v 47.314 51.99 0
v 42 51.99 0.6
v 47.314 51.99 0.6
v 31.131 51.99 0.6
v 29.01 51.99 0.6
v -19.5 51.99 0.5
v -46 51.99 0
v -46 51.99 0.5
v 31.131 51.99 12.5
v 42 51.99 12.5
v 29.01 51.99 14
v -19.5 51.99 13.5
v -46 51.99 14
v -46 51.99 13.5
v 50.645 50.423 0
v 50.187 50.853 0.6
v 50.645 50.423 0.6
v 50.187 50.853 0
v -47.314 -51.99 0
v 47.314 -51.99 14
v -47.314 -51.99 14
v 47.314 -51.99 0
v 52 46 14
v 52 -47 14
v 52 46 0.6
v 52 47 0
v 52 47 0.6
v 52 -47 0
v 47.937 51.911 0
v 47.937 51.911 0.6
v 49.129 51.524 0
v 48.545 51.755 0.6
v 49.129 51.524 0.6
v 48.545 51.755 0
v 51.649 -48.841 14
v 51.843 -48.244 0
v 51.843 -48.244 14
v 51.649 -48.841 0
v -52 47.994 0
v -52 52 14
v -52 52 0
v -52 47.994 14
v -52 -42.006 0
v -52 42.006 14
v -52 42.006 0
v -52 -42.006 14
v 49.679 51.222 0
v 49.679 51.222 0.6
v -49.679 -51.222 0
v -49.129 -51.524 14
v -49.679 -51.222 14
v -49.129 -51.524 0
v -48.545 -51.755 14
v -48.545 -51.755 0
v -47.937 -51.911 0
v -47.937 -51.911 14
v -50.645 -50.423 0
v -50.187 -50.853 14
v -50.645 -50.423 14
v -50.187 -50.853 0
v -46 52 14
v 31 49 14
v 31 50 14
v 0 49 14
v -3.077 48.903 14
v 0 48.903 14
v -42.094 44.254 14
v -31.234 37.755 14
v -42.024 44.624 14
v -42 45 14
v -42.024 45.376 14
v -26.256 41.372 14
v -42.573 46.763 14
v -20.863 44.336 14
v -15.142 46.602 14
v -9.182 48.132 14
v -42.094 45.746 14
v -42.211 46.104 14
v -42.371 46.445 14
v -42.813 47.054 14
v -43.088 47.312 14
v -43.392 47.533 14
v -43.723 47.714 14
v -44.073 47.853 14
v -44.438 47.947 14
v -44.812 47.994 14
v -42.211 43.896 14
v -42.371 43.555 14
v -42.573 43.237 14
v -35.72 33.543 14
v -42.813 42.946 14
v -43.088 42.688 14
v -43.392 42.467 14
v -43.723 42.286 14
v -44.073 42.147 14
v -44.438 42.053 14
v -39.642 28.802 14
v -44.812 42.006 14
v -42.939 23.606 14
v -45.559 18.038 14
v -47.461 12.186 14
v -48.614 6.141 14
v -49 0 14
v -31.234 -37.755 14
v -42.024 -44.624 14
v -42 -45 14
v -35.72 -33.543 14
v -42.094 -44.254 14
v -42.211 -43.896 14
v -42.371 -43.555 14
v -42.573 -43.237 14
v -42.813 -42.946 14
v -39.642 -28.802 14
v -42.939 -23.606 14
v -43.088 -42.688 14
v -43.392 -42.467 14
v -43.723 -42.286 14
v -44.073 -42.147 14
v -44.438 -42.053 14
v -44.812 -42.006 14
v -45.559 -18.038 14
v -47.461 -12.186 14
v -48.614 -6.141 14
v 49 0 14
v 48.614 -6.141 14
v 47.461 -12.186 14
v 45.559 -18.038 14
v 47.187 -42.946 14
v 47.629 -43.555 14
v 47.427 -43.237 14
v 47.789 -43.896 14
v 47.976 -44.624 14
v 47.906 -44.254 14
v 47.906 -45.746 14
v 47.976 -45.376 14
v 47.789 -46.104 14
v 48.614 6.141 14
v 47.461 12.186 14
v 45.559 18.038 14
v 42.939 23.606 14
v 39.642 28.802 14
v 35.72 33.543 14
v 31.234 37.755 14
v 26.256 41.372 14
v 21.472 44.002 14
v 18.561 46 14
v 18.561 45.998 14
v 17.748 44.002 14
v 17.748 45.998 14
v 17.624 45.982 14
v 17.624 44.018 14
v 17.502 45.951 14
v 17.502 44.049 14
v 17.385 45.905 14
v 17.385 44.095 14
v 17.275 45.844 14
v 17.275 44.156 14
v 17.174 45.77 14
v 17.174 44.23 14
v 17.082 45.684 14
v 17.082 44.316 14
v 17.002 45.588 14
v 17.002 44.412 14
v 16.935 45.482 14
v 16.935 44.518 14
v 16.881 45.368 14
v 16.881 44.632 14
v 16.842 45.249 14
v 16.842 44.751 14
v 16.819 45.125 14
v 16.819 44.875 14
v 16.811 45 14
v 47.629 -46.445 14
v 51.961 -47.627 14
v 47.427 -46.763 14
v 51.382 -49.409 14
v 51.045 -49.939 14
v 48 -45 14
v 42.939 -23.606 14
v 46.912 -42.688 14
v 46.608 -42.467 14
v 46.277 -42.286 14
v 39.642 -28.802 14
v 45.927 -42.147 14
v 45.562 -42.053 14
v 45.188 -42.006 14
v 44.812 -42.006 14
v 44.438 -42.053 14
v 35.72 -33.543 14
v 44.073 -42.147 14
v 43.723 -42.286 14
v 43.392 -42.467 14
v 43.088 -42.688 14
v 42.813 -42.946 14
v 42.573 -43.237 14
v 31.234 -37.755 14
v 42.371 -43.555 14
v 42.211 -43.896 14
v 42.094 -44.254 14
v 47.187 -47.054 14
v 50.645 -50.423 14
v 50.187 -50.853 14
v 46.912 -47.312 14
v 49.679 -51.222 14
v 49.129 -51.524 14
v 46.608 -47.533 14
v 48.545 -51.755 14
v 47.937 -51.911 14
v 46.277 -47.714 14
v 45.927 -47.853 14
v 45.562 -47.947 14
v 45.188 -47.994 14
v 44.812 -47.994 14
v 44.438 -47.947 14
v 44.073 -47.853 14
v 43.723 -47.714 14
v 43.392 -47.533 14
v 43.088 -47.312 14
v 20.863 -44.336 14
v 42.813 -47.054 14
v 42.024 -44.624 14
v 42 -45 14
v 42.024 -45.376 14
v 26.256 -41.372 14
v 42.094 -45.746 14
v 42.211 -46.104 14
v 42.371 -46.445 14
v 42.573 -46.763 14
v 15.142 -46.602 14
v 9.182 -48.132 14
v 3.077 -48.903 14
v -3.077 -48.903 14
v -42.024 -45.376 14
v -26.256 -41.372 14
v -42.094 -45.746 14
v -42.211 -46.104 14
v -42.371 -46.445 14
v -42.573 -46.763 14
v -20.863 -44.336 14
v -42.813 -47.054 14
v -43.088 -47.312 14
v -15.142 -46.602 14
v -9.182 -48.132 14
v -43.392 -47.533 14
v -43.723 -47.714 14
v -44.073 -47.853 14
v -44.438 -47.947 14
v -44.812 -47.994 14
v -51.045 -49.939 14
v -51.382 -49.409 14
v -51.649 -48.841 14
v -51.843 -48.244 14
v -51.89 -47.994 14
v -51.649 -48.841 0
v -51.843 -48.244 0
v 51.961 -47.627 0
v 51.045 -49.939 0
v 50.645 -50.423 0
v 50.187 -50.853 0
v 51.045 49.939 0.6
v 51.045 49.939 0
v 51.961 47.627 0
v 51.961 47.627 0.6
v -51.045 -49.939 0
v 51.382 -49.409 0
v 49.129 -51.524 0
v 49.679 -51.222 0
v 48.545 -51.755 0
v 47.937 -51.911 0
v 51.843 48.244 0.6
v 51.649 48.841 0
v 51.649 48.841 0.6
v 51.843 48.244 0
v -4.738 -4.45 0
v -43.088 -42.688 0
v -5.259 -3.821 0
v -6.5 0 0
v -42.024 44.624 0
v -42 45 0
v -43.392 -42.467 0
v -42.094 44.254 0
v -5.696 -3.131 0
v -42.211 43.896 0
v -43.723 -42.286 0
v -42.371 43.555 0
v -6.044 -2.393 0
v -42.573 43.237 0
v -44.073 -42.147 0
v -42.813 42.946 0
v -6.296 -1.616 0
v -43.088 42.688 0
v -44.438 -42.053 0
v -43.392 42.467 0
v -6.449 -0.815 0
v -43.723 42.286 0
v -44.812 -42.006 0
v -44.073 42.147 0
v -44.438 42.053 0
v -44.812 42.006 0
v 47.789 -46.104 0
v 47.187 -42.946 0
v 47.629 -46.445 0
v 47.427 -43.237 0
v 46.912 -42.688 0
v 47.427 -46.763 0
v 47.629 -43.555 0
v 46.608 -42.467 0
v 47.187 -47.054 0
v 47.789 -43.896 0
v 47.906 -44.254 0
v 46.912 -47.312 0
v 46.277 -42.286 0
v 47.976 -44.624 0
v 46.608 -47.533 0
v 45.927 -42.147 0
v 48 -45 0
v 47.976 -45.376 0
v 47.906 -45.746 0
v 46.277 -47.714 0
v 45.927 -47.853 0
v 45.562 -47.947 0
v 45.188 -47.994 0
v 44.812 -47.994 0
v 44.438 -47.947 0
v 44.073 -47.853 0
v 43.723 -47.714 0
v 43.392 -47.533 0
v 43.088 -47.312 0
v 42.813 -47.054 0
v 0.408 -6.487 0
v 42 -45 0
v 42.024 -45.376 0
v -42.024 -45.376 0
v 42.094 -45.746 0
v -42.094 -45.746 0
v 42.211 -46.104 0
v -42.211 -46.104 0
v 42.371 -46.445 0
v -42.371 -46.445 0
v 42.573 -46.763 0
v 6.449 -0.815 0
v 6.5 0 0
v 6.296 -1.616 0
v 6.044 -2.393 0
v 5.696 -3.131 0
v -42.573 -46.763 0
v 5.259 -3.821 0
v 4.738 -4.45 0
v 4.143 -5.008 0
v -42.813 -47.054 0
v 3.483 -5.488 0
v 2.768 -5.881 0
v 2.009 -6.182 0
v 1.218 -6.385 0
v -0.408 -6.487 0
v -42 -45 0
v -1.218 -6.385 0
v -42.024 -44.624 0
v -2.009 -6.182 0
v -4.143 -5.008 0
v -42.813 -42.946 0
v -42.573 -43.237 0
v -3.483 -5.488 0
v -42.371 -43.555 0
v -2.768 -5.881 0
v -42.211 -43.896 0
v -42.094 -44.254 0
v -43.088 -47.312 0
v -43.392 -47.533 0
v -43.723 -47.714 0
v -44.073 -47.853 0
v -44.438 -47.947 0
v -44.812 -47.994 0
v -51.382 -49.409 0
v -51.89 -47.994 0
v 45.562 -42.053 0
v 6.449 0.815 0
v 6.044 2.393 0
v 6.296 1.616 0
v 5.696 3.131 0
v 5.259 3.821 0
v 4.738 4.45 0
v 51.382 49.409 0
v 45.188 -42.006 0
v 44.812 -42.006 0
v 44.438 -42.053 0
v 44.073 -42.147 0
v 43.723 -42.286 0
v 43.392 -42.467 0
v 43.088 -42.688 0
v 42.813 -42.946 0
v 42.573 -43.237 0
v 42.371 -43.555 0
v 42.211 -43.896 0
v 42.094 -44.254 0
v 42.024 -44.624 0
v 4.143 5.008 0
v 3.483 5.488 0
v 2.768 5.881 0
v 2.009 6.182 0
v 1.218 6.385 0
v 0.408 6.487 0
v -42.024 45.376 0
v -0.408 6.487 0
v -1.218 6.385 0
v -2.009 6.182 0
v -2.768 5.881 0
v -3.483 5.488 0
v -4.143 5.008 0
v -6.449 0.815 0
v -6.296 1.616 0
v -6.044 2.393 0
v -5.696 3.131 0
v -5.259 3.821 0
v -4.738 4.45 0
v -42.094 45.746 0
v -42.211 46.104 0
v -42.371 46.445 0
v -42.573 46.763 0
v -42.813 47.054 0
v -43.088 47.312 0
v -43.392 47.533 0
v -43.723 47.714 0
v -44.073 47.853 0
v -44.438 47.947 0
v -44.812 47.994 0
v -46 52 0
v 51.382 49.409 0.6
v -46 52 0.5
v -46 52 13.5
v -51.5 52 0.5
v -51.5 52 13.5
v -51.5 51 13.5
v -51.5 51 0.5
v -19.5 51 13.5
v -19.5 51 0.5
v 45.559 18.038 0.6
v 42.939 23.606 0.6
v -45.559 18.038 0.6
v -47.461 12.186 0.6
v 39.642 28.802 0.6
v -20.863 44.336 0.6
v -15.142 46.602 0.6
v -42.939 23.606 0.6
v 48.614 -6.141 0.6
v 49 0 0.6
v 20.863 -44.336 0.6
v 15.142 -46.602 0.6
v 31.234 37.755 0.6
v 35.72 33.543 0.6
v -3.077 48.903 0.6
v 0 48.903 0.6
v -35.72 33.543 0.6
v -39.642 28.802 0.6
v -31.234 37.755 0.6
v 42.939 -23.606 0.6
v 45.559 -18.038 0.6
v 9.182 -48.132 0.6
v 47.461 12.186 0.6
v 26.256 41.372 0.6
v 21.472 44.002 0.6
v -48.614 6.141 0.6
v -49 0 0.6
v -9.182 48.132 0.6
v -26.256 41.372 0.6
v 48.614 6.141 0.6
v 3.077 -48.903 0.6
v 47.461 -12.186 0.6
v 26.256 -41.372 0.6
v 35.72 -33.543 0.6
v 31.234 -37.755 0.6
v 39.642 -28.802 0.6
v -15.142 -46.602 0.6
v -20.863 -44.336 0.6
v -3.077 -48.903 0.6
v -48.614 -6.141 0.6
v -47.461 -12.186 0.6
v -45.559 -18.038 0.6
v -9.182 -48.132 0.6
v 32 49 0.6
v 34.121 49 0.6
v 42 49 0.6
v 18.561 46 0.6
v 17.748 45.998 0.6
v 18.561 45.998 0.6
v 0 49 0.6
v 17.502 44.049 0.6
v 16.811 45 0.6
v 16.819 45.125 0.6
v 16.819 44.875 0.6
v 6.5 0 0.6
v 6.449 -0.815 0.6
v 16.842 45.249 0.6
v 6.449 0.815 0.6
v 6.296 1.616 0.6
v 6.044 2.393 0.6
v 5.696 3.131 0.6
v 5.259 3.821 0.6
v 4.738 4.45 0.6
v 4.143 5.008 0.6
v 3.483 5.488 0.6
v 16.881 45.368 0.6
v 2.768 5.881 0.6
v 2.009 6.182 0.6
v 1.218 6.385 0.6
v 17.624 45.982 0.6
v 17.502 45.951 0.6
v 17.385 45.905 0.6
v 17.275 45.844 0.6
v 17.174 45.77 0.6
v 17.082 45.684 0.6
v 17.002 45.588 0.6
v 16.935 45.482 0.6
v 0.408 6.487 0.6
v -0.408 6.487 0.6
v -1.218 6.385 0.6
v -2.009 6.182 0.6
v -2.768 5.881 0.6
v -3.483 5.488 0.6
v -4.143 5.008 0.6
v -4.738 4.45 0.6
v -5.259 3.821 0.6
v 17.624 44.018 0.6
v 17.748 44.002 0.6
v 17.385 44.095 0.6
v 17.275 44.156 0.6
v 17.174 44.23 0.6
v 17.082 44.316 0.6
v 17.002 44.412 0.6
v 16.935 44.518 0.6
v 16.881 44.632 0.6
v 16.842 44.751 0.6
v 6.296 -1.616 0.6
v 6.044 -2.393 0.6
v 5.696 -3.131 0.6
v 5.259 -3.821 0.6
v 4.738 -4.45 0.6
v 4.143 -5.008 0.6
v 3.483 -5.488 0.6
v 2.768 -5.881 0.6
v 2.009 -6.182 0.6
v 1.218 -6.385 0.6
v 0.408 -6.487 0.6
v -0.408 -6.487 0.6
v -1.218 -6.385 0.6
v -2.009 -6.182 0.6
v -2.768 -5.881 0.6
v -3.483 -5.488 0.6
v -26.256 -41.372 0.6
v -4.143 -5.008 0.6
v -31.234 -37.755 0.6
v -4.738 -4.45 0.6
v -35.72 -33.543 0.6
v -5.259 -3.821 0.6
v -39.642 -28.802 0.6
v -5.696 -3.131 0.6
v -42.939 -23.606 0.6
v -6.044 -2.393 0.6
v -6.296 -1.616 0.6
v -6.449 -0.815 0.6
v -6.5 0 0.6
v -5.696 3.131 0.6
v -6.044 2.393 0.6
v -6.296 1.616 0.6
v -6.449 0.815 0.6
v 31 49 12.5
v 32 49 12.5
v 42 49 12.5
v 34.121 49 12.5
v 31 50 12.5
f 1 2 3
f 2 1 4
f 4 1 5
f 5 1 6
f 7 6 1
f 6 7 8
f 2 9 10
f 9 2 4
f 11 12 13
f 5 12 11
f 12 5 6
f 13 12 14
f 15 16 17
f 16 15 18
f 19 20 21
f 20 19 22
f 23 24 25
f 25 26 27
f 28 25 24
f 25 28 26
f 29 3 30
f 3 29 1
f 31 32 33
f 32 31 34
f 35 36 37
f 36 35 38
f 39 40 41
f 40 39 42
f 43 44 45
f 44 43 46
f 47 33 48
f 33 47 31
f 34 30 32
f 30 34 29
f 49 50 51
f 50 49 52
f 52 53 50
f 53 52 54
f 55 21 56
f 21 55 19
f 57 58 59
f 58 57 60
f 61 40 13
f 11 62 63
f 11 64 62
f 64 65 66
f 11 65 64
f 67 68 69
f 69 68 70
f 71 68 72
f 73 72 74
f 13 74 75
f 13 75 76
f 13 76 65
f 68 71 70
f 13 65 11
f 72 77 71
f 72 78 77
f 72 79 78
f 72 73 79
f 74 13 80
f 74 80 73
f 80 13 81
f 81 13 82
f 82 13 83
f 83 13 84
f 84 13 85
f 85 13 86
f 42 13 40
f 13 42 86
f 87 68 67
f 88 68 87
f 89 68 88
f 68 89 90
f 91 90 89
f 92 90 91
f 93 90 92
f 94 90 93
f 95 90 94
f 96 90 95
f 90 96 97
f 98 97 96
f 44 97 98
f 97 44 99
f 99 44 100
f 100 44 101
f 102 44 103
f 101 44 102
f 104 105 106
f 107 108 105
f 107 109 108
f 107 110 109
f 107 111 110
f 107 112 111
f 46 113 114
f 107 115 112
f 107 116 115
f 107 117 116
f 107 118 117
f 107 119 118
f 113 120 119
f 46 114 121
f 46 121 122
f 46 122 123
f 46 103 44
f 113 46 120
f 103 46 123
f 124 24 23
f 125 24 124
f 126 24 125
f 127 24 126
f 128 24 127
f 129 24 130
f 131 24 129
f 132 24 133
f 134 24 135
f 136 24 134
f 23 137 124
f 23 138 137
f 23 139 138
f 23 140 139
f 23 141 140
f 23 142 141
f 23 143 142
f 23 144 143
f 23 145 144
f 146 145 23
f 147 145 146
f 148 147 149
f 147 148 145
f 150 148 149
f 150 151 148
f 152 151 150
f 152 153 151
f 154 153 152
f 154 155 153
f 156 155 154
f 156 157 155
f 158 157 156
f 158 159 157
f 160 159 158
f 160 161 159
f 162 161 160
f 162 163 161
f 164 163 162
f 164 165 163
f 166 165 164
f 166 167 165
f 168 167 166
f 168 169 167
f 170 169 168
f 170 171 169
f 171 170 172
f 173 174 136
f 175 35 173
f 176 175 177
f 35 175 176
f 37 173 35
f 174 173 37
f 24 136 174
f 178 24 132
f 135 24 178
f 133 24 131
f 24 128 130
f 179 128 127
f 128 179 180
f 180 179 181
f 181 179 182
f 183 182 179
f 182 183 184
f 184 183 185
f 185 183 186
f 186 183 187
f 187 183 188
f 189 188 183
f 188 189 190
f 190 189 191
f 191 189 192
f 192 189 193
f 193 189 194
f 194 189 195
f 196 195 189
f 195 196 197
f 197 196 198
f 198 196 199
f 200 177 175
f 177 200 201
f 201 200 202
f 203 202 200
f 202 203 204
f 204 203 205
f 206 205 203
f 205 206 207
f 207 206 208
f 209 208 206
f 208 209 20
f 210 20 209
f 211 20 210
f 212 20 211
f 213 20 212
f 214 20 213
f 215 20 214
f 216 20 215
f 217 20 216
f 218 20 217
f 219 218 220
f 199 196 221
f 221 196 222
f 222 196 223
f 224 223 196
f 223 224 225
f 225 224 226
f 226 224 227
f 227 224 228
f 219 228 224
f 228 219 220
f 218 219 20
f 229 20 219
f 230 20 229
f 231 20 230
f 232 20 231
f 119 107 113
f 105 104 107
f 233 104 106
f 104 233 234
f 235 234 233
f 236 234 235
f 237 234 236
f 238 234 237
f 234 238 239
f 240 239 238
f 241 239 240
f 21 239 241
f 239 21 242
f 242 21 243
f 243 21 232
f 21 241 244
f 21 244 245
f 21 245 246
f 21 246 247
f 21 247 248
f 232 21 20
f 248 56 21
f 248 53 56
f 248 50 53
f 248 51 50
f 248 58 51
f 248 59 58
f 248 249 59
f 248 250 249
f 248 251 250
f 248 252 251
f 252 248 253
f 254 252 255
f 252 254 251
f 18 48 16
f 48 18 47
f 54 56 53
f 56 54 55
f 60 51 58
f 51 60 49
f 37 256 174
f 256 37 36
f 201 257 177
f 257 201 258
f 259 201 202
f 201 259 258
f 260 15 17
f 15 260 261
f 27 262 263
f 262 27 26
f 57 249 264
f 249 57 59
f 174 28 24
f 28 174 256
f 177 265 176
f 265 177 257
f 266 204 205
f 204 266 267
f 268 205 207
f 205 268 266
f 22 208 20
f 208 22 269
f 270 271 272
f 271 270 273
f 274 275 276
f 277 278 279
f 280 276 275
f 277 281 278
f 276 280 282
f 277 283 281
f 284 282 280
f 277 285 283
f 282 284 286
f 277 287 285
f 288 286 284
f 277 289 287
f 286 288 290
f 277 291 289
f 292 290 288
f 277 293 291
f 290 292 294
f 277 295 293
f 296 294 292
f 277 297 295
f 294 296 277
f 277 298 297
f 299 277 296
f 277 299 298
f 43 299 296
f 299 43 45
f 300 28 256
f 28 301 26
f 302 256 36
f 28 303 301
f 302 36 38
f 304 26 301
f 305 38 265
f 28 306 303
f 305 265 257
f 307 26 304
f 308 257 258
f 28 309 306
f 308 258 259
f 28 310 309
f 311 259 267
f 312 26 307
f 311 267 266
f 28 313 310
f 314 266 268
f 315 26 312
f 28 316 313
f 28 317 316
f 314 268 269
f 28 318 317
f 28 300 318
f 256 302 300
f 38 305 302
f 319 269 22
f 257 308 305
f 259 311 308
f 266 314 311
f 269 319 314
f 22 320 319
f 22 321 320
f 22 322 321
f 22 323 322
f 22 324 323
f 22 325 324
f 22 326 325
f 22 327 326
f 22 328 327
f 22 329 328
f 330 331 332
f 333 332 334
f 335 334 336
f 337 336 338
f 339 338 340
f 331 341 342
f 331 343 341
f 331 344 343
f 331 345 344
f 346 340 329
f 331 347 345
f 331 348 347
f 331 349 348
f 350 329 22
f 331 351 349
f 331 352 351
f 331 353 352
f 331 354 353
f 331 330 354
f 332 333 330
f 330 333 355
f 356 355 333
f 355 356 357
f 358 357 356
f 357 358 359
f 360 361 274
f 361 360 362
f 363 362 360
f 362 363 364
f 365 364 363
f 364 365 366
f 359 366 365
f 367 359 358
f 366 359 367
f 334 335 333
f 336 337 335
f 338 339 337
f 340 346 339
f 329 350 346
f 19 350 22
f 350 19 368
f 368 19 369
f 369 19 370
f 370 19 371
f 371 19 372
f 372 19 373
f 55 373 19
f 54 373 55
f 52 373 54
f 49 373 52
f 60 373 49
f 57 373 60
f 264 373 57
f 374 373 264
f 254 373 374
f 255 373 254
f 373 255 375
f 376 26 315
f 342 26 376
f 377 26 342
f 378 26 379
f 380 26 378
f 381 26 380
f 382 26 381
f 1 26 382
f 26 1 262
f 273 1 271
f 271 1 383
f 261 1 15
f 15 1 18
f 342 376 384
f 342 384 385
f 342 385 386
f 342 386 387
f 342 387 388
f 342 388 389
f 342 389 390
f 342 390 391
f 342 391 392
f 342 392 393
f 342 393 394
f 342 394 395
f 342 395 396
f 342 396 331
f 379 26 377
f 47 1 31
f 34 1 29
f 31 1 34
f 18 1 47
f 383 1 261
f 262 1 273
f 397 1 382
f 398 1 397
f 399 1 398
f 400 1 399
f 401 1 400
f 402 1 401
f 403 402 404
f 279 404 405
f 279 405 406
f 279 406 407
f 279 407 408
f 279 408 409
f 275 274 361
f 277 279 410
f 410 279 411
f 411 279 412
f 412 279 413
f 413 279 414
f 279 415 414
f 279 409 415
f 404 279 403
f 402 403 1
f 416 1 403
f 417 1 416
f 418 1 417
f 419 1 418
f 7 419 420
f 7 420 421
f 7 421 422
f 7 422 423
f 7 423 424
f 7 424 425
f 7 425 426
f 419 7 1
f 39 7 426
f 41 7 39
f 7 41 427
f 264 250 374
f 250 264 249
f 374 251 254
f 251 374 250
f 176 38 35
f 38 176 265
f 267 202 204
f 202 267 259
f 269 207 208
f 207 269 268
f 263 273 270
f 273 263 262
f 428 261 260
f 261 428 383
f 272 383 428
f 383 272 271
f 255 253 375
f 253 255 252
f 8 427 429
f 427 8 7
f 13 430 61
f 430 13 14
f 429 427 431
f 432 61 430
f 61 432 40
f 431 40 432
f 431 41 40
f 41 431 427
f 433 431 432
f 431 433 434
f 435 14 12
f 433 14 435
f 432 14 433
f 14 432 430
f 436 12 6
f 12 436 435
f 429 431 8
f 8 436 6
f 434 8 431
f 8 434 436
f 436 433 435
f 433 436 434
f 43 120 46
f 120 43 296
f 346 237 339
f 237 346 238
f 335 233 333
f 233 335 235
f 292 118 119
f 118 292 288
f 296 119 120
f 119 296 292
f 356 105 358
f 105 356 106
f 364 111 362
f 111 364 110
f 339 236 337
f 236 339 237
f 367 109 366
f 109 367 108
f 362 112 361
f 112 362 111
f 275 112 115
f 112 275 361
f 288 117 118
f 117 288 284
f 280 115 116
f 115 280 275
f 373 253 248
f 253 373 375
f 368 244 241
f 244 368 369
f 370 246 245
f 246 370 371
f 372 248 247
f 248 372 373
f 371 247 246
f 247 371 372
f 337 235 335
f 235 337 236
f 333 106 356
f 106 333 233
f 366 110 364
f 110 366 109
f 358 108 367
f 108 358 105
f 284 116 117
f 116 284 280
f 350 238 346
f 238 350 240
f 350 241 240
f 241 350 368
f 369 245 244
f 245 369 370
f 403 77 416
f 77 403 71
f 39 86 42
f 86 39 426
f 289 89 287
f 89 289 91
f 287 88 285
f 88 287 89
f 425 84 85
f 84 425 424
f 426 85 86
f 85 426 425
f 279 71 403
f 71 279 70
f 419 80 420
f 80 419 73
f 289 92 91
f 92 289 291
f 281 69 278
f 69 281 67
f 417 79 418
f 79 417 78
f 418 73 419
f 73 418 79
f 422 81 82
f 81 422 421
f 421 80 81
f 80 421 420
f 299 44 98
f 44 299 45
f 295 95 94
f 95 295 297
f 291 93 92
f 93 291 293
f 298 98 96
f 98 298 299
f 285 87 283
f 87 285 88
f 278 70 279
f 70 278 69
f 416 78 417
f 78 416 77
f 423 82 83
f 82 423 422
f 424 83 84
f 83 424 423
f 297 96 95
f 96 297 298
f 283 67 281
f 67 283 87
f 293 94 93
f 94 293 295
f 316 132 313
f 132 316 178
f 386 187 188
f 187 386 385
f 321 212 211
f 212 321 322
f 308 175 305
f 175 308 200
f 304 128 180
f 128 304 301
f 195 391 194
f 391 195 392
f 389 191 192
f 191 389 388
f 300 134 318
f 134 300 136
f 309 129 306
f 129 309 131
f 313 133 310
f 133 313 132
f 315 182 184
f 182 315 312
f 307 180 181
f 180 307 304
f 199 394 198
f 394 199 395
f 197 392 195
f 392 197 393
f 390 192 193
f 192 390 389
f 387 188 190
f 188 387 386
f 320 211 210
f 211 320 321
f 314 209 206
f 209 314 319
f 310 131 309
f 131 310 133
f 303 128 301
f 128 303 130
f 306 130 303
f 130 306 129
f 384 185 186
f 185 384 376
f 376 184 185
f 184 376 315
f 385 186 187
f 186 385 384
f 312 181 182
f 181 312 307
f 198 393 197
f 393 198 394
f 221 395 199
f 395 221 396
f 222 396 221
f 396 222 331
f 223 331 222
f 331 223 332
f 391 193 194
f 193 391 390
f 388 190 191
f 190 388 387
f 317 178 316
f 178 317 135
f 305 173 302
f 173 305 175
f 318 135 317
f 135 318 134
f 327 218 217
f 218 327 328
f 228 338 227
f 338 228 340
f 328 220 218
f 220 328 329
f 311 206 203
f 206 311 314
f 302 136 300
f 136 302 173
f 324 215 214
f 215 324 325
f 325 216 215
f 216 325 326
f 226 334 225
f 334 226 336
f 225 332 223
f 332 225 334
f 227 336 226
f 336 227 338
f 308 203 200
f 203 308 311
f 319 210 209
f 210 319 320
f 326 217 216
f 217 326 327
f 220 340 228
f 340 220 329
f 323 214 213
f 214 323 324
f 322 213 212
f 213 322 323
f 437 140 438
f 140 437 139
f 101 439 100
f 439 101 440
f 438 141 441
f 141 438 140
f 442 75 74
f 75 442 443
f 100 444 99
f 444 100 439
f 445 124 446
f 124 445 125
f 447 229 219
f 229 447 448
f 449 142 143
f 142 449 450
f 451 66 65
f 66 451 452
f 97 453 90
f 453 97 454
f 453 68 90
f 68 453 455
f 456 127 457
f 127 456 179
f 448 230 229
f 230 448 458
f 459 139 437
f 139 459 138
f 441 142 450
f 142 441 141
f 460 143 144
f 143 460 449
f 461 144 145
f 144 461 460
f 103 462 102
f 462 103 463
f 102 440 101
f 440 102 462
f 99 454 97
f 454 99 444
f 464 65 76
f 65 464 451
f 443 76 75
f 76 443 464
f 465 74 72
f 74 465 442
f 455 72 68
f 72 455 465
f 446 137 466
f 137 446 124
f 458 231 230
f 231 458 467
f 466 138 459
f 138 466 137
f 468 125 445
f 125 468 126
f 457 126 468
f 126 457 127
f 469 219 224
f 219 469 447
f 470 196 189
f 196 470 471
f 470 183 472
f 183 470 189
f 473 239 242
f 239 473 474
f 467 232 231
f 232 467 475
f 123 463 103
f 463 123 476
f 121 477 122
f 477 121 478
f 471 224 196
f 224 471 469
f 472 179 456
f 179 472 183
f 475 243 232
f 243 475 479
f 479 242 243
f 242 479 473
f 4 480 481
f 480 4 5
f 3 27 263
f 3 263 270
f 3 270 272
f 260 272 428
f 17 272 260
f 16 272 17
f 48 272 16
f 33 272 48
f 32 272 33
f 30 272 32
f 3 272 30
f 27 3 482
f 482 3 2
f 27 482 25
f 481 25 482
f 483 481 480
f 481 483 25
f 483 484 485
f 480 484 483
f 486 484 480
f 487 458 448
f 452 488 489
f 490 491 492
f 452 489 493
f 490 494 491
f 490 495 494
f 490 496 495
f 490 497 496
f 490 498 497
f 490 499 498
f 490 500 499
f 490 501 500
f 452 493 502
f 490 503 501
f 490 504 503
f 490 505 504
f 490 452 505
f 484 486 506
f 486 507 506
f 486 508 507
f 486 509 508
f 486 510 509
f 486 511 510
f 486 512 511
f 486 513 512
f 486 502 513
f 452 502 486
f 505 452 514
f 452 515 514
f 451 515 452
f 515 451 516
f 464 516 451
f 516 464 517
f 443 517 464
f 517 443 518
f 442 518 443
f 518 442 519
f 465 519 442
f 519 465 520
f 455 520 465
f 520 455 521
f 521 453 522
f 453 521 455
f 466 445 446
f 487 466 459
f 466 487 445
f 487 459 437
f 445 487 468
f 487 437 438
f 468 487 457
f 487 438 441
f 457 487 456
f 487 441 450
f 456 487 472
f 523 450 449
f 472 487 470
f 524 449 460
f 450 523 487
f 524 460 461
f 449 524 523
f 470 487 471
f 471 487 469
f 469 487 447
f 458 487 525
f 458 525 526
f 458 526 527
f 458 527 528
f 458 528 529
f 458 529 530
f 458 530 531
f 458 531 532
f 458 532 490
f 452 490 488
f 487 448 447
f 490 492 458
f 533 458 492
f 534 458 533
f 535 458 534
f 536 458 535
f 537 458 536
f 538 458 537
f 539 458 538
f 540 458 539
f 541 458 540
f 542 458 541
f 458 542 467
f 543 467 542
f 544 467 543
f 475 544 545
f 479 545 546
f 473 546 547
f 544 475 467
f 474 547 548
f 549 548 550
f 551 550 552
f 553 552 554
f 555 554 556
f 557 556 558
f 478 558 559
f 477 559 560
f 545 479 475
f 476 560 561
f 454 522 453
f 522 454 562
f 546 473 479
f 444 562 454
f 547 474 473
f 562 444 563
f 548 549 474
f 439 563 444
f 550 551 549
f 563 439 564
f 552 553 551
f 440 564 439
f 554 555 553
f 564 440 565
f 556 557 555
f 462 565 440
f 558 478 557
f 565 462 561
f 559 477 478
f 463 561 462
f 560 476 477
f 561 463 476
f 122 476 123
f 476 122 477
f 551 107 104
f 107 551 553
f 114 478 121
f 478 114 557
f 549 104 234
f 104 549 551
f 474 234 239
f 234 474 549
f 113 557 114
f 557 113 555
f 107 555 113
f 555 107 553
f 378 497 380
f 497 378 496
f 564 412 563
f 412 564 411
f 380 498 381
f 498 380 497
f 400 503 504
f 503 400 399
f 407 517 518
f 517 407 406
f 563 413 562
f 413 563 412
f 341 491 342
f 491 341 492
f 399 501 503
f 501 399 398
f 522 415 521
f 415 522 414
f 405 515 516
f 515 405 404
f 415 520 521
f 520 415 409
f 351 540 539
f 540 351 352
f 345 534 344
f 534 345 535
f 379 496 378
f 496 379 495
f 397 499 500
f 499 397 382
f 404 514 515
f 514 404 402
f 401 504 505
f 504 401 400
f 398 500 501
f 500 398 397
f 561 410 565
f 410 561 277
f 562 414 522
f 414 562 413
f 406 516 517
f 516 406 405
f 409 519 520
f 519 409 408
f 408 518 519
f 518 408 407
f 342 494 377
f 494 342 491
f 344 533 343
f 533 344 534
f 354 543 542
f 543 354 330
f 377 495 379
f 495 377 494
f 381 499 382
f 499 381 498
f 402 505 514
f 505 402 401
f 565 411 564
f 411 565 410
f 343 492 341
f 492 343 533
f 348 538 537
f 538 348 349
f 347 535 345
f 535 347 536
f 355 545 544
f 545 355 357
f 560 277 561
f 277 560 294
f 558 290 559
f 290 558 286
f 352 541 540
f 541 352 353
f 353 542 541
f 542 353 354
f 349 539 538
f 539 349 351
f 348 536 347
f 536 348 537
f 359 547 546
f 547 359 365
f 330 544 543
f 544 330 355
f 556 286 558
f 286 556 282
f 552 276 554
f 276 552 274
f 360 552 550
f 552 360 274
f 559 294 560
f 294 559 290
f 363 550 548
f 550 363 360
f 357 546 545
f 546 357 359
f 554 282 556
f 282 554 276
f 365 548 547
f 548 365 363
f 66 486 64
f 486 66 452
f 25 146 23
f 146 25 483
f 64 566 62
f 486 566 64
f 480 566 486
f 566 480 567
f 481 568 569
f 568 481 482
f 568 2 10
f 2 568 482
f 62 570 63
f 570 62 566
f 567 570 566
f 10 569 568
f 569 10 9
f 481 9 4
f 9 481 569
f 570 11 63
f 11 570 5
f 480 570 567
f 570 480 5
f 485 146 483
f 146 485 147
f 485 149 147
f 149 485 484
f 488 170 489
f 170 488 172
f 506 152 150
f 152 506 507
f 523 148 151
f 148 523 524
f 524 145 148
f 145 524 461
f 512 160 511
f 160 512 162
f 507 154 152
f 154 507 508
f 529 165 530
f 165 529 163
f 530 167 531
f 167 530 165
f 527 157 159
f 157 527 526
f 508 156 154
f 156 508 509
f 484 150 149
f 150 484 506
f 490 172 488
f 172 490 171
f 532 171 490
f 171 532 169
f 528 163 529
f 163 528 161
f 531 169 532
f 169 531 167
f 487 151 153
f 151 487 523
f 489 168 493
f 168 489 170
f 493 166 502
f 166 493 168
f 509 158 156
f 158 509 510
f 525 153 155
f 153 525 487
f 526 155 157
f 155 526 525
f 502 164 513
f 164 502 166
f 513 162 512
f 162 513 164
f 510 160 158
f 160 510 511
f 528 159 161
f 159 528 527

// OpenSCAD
$fn = 50;


union() {
	difference() {
		union() {
			translate(v = [0, 0, 0]) {
				rotate(a = [0, 0, 0]) {
					hull() {
						translate(v = [-47.0000000000, 47.0000000000, 0]) {
							rotate(a = [0, 0, 0]) {
								translate(v = [0, 0, 0]) {
									rotate(a = [0, 0, 0]) {
										cylinder(h = 14, r = 5);
									}
								}
							}
						}
						translate(v = [47.0000000000, 47.0000000000, 0]) {
							rotate(a = [0, 0, 0]) {
								translate(v = [0, 0, 0]) {
									rotate(a = [0, 0, 0]) {
										cylinder(h = 14, r = 5);
									}
								}
							}
						}
						translate(v = [-47.0000000000, -47.0000000000, 0]) {
							rotate(a = [0, 0, 0]) {
								translate(v = [0, 0, 0]) {
									rotate(a = [0, 0, 0]) {
										cylinder(h = 14, r = 5);
									}
								}
							}
						}
						translate(v = [47.0000000000, -47.0000000000, 0]) {
							rotate(a = [0, 0, 0]) {
								translate(v = [0, 0, 0]) {
									rotate(a = [0, 0, 0]) {
										cylinder(h = 14, r = 5);
									}
								}
							}
						}
					}
				}
			}
			translate(v = [-52.0000000000, 46.0000000000, 0]) {
				rotate(a = [0, 0, 0]) {
					cube(size = [6, 6, 14]);
				}
			}
		}
		union() {
			#translate(v = [-51.5000000000, 51.0000000000, 0.5000000000]) {
				rotate(a = [0, 0, 0]) {
					cube(size = [32, 1, 13.0000000000]);
				}
			}
			translate(v = [-52.5000000000, -45.0000000000, -125]) {
				rotate(a = [0, 0, 0]) {
					hull() {
						translate(v = [7.5000000000, 0, 0]) {
							rotate(a = [0, 0, 0]) {
								translate(v = [0, 0, 0]) {
									rotate(a = [0, 0, 0]) {
										cylinder(h = 250, r = 3.0000000000);
									}
								}
							}
						}
						translate(v = [-7.5000000000, 0, 0]) {
							rotate(a = [0, 0, 0]) {
								translate(v = [0, 0, 0]) {
									rotate(a = [0, 0, 0]) {
										cylinder(h = 250, r = 3.0000000000);
									}
								}
							}
						}
					}
				}
			}
			translate(v = [-52.5000000000, 45.0000000000, -125]) {
				rotate(a = [0, 0, 0]) {
					hull() {
						translate(v = [7.5000000000, 0, 0]) {
							rotate(a = [0, 0, 0]) {
								translate(v = [0, 0, 0]) {
									rotate(a = [0, 0, 0]) {
										cylinder(h = 250, r = 3.0000000000);
									}
								}
							}
						}
						translate(v = [-7.5000000000, 0, 0]) {
							rotate(a = [0, 0, 0]) {
								translate(v = [0, 0, 0]) {
									rotate(a = [0, 0, 0]) {
										cylinder(h = 250, r = 3.0000000000);
									}
								}
							}
						}
					}
				}
			}
			translate(v = [45.0000000000, -45.0000000000, -125.0000000000]) {
				rotate(a = [0, 0, 0]) {
					cylinder(h = 250, r = 3.0000000000);
				}
			}
			translate(v = [0, 0, 0.6000000000]) {
				rotate(a = [0, 0, 0]) {
					cylinder(h = 16.4000000000, r = 49.0000000000);
				}
			}
			translate(v = [0, 0, -7.0000000000]) {
				rotate(a = [0, 0, 0]) {
					cylinder(h = 14, r = 6.5000000000);
				}
			}
			translate(v = [0.0000000000, 46.0000000000, 0.6000000000]) {
				rotate(a = [0, 0, 0]) {
					cube(size = [52.0000000000, 3, 16.4000000000]);
				}
			}
			translate(v = [42.0000000000, 46.0000000000, 0.6000000000]) {
				rotate(a = [0, 0, 0]) {
					cube(size = [10, 6, 16.4000000000]);
				}
			}
			translate(v = [31.0000000000, 46.0000000000, 12.5000000000]) {
				rotate(a = [0, 0, 0]) {
					cube(size = [21, 6, 1.5000000000]);
				}
			}
			translate(v = [28.2500000000, 52.7500000000, 0.6000000000]) {
				rotate(a = [0, 0, -45]) {
					cube(size = [7.5000000000, 1.5000000000, 16.4000000000]);
				}
			}
			translate(v = [11.0610000000, 44.0000000000, 0.6000000000]) {
				rotate(a = [0, 0, 0]) {
					cube(size = [7.5000000000, 2, 13.4000000000]);
				}
			}
		}
	}
	union() {
		translate(v = [20.3110000000, 45.0000000000, 0]) {
			rotate(a = [0, 0, 0]) {
				hull() {
					translate(v = [2.5000000000, 0, 0]) {
						rotate(a = [0, 0, 0]) {
							#translate(v = [0, 0, 0]) {
								rotate(a = [0, 0, 0]) {
									cylinder(h = 14, r = 1.0000000000);
								}
							}
						}
					}
					translate(v = [-2.5000000000, 0, 0]) {
						rotate(a = [0, 0, 0]) {
							#translate(v = [0, 0, 0]) {
								rotate(a = [0, 0, 0]) {
									cylinder(h = 14, r = 1.0000000000);
								}
							}
						}
					}
				}
			}
		}
	}
}
